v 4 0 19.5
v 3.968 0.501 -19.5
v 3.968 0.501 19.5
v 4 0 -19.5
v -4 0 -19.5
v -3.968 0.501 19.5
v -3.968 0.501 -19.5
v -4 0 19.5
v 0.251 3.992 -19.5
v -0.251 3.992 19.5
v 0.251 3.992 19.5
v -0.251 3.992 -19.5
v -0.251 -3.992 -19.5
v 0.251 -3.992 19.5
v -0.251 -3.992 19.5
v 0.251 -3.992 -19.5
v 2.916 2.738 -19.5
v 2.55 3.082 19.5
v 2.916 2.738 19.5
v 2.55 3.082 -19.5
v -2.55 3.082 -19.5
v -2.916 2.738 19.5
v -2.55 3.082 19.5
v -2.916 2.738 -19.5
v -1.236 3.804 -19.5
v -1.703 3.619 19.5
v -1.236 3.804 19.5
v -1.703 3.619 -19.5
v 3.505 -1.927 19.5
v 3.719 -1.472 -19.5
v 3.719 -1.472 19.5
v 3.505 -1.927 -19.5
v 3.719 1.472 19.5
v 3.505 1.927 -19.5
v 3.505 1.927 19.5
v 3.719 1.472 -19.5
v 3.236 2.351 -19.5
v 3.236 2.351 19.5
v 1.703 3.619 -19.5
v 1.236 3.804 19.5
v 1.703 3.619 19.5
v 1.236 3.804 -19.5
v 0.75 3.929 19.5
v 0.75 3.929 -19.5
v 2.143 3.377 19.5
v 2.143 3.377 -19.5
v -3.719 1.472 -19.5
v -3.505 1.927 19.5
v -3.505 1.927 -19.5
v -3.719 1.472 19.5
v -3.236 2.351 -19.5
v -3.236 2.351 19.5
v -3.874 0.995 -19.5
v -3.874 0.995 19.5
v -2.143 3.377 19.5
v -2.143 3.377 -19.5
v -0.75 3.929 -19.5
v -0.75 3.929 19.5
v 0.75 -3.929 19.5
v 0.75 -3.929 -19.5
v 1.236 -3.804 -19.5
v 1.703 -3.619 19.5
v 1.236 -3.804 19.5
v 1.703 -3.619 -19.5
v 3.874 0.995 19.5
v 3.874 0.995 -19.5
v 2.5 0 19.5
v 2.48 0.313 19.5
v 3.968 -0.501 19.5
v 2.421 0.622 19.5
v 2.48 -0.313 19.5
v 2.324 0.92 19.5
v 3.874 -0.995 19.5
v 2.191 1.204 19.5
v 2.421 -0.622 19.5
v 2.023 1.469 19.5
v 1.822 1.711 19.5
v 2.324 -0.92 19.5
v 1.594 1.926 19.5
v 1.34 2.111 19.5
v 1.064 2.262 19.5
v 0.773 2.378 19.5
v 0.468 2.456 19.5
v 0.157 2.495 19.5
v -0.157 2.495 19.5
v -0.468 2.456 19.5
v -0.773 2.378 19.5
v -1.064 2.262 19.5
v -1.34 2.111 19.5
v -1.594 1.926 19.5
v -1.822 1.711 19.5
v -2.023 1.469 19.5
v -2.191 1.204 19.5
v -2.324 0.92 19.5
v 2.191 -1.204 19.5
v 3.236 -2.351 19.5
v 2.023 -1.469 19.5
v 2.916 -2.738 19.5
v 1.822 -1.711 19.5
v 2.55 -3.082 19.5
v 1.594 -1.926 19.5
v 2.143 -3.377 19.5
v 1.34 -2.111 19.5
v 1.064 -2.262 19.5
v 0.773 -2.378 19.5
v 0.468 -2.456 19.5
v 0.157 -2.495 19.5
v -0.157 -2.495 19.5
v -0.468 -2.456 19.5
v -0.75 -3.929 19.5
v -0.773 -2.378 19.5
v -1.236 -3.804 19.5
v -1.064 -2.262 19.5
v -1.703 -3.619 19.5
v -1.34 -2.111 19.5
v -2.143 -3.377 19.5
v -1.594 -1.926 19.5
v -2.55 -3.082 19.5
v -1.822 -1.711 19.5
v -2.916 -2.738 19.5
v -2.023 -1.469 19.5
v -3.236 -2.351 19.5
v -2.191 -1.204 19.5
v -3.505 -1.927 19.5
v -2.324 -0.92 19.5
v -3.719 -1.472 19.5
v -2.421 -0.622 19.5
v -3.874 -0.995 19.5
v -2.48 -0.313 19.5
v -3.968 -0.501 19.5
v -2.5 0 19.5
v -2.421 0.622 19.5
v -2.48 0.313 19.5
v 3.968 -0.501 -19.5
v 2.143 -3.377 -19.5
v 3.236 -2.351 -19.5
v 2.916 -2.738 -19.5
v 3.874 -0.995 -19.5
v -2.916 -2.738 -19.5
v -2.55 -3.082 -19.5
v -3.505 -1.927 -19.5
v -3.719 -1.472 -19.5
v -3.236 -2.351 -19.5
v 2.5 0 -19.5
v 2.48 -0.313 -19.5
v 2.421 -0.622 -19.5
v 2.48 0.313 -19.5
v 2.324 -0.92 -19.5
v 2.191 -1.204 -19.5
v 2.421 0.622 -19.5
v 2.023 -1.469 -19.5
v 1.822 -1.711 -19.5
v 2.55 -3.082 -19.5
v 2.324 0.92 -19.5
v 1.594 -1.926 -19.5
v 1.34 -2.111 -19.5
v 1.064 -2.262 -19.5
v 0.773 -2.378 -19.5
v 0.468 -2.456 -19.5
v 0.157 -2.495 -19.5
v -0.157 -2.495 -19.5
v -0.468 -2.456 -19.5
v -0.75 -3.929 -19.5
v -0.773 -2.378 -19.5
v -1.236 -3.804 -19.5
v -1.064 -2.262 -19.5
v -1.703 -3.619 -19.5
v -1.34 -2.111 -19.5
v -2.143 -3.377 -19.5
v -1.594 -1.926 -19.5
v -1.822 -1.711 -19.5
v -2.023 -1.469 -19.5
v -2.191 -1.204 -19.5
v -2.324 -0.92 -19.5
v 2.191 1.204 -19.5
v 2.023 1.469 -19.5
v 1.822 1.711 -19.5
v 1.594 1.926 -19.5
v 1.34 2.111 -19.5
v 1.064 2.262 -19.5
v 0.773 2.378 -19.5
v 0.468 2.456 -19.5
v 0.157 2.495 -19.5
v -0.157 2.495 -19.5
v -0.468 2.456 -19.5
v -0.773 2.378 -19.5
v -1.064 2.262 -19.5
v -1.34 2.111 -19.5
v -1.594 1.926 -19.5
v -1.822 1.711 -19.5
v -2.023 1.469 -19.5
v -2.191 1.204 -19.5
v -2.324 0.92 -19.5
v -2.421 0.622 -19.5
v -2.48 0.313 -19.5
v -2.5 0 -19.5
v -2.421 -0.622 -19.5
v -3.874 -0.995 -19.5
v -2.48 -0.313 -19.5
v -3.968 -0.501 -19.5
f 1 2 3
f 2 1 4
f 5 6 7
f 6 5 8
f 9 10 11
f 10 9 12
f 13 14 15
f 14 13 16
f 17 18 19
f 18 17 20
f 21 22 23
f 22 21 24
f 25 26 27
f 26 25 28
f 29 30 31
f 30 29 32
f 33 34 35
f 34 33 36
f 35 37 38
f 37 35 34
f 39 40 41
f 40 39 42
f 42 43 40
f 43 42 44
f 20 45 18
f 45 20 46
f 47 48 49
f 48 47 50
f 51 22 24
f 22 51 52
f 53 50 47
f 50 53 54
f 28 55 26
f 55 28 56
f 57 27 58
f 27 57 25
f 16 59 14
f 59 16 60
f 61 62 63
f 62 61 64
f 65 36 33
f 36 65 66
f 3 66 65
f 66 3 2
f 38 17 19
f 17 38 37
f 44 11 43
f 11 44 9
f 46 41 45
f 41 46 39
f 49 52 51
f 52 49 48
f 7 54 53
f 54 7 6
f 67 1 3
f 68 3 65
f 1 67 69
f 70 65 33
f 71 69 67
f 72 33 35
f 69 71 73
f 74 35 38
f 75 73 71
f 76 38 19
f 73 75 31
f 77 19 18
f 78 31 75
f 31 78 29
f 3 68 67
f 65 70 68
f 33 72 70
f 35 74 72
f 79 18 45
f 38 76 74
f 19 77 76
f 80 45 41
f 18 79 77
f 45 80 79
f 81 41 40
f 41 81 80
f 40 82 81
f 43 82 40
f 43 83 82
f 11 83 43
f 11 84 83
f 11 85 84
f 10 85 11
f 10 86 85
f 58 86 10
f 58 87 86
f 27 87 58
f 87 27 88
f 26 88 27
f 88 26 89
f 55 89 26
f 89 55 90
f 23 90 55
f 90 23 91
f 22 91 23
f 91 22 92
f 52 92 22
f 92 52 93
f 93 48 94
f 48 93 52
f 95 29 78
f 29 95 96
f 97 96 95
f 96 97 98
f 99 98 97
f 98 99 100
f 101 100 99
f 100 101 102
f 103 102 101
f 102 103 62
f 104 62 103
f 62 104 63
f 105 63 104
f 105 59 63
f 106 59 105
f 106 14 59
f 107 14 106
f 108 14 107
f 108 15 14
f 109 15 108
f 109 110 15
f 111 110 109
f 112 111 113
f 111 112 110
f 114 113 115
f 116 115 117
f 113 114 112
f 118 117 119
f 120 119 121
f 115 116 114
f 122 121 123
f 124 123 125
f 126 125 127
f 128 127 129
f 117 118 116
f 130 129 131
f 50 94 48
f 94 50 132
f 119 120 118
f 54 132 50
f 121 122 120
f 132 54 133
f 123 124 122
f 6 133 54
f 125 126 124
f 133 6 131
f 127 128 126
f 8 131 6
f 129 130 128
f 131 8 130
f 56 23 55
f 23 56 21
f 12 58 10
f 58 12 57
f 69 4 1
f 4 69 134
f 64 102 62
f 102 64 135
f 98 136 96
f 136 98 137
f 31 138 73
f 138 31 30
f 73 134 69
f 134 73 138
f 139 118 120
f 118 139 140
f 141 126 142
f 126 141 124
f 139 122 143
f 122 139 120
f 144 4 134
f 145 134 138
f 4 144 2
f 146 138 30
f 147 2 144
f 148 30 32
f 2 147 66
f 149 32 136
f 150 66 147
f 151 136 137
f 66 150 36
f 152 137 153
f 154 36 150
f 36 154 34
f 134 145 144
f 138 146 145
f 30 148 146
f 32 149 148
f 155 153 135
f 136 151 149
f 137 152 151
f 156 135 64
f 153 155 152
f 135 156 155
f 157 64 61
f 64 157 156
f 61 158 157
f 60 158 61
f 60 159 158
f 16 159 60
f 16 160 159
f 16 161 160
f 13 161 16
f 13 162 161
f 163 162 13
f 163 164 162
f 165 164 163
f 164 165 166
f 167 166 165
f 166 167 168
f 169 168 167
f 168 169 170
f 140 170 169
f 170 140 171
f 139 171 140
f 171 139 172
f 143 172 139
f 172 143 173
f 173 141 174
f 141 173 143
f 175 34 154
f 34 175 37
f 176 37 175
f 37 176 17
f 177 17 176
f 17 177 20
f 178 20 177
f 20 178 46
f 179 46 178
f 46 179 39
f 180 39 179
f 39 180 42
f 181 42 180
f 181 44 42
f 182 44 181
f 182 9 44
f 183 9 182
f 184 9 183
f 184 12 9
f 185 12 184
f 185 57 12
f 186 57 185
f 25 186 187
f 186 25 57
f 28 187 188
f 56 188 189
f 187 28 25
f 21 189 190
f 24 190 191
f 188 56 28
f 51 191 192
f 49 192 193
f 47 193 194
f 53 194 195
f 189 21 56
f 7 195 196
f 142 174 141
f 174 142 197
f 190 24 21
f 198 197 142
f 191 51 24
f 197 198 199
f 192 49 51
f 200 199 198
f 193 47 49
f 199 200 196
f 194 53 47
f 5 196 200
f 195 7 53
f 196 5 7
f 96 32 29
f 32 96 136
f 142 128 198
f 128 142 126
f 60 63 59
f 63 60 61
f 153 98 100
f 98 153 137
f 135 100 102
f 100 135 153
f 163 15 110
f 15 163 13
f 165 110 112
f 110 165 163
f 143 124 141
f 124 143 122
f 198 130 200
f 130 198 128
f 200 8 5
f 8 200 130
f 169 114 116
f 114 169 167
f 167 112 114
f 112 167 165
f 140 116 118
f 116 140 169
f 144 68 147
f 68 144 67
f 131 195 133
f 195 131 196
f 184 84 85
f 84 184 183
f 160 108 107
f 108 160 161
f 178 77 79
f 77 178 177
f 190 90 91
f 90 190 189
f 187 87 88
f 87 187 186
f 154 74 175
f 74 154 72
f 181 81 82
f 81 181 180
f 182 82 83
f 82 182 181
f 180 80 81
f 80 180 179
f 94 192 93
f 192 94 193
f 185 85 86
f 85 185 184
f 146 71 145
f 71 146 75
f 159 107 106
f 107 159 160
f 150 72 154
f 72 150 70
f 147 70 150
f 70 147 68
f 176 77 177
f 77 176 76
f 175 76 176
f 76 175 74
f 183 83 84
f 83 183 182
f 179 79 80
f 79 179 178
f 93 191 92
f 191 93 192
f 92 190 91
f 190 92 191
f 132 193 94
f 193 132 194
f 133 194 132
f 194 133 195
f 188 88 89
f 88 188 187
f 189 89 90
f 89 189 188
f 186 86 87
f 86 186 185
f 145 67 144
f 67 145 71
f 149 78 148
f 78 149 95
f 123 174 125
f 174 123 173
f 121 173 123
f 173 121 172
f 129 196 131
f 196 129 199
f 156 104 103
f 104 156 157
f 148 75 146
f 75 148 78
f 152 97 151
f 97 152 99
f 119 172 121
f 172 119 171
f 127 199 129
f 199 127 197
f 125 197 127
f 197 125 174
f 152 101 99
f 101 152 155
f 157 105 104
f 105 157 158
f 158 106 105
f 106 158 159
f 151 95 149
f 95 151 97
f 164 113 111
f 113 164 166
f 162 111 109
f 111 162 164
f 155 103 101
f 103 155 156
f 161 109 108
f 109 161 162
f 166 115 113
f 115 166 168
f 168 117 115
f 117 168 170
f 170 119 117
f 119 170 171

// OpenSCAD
$fn = 50;


difference() {
	union() {
		translate(v = [0, 0, -19.5000000000]) {
			cylinder(h = 39, r = 4.0000000000);
		}
	}
	union() {
		translate(v = [0, 0, -100.0000000000]) {
			cylinder(h = 200, r = 2.5000000000);
		}
	}
}
